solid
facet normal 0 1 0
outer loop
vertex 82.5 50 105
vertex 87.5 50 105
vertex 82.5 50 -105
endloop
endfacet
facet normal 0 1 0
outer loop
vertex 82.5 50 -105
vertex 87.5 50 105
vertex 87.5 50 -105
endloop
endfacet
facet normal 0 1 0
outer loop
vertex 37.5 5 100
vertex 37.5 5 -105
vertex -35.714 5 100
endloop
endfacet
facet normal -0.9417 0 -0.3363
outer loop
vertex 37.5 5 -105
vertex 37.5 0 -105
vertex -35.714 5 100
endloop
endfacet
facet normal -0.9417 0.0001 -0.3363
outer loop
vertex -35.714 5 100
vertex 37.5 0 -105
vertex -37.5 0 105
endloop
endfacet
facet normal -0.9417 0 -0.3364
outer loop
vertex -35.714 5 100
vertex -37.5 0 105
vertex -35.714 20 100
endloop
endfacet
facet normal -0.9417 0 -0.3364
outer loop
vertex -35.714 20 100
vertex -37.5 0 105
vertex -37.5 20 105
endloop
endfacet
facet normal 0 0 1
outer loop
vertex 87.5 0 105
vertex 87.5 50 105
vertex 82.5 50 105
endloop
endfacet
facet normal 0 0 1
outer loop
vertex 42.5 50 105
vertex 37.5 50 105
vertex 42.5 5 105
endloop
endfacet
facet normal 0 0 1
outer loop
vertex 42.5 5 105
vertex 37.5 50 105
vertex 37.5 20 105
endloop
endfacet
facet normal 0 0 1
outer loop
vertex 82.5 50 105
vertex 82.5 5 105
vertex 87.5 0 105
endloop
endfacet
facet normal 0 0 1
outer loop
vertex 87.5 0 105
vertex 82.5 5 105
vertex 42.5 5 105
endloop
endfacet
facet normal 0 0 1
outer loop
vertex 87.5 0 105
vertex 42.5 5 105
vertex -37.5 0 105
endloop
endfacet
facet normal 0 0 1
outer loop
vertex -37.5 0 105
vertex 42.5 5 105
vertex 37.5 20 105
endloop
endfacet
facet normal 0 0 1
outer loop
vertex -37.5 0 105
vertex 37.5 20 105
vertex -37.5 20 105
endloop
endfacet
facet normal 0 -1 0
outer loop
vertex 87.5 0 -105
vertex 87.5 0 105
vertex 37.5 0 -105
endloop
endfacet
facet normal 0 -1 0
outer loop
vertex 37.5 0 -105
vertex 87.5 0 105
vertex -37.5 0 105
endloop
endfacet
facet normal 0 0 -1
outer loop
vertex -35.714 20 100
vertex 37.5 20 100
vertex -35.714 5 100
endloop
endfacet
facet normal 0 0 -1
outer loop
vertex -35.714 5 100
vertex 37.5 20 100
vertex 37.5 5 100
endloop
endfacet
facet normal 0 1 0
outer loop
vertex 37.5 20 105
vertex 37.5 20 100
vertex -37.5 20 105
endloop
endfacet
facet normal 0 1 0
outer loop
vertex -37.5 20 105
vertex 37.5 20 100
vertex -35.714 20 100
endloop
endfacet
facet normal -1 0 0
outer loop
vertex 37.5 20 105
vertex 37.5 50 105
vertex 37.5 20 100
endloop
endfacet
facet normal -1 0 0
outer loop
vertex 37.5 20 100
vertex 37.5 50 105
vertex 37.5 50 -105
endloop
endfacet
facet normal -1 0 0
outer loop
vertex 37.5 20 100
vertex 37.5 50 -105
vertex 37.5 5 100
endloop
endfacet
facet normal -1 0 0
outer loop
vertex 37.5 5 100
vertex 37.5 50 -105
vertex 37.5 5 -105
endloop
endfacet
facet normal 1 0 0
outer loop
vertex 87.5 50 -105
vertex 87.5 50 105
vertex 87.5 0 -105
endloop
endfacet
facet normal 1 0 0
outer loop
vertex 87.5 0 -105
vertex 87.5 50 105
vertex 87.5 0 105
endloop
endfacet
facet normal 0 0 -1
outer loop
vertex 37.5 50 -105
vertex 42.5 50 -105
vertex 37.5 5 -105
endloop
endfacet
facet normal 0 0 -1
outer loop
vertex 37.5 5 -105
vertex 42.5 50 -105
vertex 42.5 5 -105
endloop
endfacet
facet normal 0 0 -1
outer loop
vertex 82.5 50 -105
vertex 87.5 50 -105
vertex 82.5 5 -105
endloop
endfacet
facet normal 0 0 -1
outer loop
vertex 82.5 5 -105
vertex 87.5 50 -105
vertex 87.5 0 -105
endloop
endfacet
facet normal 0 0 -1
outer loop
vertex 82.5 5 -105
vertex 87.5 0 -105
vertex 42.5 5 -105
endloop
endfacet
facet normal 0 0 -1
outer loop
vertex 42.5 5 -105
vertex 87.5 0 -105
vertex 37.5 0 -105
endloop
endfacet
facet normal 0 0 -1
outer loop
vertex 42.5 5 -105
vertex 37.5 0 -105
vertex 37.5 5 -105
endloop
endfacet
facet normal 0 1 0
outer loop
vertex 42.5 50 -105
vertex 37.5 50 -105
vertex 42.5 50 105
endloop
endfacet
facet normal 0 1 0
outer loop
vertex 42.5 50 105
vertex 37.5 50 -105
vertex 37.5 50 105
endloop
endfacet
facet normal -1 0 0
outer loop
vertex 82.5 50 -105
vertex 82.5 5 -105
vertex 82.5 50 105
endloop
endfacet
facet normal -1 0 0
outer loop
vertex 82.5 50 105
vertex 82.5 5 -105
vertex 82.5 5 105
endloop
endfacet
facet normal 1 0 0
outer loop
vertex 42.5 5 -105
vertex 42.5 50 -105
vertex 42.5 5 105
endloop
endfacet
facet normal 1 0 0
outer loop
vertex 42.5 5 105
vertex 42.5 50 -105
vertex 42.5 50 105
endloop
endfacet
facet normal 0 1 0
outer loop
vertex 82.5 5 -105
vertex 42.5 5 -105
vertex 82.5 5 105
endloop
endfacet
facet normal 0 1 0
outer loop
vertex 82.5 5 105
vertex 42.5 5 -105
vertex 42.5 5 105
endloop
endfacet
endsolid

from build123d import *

# Parameters (mm, degrees)
BOSS_EXTRUDE1_DEPTH = 5
BOSS_EXTRUDE2_DEPTH = 15
SKETCH3_W           = 50
SKETCH3_H           = 210
BOSS_EXTRUDE3_DEPTH = 50
SKETCH4_W           = 40
SKETCH4_H           = 45
CUT_EXTRUDE2_DEPTH  = 210


with BuildPart() as part:
    # Sketch1 → Boss-Extrude1 (new body)
    with BuildSketch(Plane(origin=(0, 0, 0), x_dir=(1, 0, 0), z_dir=(0, 1, 0))):
        Polygon((-37.5, -105), (37.5, 105), (37.5, -105), align=None)
    extrude(amount=BOSS_EXTRUDE1_DEPTH)

    # Sketch2 → Boss-Extrude2 (add)
    with BuildSketch(Plane(origin=(0, 5, 0), x_dir=(1, 0, 0), z_dir=(0, 1, 0))):
        Polygon((-37.5, -105), (37.5, -105), (37.5, -100), (-35.714285714, -100), align=None)
    extrude(amount=BOSS_EXTRUDE2_DEPTH)

    # Sketch3 → Boss-Extrude3 (add)
    with BuildSketch(Plane.XZ):
        with Locations((62.5, 0)):
            Rectangle(SKETCH3_W, SKETCH3_H)
    extrude(amount=-BOSS_EXTRUDE3_DEPTH)

    # Sketch4 → Cut-Extrude2 (cut)
    with BuildSketch(Plane(origin=(0, 0, -105), x_dir=(-1, 0, 0), z_dir=(0, 0, -1))):
        with Locations((-62.5, 27.5)):
            Rectangle(SKETCH4_W, SKETCH4_H)
    extrude(amount=-CUT_EXTRUDE2_DEPTH, mode=Mode.SUBTRACT)


solid = part.part
